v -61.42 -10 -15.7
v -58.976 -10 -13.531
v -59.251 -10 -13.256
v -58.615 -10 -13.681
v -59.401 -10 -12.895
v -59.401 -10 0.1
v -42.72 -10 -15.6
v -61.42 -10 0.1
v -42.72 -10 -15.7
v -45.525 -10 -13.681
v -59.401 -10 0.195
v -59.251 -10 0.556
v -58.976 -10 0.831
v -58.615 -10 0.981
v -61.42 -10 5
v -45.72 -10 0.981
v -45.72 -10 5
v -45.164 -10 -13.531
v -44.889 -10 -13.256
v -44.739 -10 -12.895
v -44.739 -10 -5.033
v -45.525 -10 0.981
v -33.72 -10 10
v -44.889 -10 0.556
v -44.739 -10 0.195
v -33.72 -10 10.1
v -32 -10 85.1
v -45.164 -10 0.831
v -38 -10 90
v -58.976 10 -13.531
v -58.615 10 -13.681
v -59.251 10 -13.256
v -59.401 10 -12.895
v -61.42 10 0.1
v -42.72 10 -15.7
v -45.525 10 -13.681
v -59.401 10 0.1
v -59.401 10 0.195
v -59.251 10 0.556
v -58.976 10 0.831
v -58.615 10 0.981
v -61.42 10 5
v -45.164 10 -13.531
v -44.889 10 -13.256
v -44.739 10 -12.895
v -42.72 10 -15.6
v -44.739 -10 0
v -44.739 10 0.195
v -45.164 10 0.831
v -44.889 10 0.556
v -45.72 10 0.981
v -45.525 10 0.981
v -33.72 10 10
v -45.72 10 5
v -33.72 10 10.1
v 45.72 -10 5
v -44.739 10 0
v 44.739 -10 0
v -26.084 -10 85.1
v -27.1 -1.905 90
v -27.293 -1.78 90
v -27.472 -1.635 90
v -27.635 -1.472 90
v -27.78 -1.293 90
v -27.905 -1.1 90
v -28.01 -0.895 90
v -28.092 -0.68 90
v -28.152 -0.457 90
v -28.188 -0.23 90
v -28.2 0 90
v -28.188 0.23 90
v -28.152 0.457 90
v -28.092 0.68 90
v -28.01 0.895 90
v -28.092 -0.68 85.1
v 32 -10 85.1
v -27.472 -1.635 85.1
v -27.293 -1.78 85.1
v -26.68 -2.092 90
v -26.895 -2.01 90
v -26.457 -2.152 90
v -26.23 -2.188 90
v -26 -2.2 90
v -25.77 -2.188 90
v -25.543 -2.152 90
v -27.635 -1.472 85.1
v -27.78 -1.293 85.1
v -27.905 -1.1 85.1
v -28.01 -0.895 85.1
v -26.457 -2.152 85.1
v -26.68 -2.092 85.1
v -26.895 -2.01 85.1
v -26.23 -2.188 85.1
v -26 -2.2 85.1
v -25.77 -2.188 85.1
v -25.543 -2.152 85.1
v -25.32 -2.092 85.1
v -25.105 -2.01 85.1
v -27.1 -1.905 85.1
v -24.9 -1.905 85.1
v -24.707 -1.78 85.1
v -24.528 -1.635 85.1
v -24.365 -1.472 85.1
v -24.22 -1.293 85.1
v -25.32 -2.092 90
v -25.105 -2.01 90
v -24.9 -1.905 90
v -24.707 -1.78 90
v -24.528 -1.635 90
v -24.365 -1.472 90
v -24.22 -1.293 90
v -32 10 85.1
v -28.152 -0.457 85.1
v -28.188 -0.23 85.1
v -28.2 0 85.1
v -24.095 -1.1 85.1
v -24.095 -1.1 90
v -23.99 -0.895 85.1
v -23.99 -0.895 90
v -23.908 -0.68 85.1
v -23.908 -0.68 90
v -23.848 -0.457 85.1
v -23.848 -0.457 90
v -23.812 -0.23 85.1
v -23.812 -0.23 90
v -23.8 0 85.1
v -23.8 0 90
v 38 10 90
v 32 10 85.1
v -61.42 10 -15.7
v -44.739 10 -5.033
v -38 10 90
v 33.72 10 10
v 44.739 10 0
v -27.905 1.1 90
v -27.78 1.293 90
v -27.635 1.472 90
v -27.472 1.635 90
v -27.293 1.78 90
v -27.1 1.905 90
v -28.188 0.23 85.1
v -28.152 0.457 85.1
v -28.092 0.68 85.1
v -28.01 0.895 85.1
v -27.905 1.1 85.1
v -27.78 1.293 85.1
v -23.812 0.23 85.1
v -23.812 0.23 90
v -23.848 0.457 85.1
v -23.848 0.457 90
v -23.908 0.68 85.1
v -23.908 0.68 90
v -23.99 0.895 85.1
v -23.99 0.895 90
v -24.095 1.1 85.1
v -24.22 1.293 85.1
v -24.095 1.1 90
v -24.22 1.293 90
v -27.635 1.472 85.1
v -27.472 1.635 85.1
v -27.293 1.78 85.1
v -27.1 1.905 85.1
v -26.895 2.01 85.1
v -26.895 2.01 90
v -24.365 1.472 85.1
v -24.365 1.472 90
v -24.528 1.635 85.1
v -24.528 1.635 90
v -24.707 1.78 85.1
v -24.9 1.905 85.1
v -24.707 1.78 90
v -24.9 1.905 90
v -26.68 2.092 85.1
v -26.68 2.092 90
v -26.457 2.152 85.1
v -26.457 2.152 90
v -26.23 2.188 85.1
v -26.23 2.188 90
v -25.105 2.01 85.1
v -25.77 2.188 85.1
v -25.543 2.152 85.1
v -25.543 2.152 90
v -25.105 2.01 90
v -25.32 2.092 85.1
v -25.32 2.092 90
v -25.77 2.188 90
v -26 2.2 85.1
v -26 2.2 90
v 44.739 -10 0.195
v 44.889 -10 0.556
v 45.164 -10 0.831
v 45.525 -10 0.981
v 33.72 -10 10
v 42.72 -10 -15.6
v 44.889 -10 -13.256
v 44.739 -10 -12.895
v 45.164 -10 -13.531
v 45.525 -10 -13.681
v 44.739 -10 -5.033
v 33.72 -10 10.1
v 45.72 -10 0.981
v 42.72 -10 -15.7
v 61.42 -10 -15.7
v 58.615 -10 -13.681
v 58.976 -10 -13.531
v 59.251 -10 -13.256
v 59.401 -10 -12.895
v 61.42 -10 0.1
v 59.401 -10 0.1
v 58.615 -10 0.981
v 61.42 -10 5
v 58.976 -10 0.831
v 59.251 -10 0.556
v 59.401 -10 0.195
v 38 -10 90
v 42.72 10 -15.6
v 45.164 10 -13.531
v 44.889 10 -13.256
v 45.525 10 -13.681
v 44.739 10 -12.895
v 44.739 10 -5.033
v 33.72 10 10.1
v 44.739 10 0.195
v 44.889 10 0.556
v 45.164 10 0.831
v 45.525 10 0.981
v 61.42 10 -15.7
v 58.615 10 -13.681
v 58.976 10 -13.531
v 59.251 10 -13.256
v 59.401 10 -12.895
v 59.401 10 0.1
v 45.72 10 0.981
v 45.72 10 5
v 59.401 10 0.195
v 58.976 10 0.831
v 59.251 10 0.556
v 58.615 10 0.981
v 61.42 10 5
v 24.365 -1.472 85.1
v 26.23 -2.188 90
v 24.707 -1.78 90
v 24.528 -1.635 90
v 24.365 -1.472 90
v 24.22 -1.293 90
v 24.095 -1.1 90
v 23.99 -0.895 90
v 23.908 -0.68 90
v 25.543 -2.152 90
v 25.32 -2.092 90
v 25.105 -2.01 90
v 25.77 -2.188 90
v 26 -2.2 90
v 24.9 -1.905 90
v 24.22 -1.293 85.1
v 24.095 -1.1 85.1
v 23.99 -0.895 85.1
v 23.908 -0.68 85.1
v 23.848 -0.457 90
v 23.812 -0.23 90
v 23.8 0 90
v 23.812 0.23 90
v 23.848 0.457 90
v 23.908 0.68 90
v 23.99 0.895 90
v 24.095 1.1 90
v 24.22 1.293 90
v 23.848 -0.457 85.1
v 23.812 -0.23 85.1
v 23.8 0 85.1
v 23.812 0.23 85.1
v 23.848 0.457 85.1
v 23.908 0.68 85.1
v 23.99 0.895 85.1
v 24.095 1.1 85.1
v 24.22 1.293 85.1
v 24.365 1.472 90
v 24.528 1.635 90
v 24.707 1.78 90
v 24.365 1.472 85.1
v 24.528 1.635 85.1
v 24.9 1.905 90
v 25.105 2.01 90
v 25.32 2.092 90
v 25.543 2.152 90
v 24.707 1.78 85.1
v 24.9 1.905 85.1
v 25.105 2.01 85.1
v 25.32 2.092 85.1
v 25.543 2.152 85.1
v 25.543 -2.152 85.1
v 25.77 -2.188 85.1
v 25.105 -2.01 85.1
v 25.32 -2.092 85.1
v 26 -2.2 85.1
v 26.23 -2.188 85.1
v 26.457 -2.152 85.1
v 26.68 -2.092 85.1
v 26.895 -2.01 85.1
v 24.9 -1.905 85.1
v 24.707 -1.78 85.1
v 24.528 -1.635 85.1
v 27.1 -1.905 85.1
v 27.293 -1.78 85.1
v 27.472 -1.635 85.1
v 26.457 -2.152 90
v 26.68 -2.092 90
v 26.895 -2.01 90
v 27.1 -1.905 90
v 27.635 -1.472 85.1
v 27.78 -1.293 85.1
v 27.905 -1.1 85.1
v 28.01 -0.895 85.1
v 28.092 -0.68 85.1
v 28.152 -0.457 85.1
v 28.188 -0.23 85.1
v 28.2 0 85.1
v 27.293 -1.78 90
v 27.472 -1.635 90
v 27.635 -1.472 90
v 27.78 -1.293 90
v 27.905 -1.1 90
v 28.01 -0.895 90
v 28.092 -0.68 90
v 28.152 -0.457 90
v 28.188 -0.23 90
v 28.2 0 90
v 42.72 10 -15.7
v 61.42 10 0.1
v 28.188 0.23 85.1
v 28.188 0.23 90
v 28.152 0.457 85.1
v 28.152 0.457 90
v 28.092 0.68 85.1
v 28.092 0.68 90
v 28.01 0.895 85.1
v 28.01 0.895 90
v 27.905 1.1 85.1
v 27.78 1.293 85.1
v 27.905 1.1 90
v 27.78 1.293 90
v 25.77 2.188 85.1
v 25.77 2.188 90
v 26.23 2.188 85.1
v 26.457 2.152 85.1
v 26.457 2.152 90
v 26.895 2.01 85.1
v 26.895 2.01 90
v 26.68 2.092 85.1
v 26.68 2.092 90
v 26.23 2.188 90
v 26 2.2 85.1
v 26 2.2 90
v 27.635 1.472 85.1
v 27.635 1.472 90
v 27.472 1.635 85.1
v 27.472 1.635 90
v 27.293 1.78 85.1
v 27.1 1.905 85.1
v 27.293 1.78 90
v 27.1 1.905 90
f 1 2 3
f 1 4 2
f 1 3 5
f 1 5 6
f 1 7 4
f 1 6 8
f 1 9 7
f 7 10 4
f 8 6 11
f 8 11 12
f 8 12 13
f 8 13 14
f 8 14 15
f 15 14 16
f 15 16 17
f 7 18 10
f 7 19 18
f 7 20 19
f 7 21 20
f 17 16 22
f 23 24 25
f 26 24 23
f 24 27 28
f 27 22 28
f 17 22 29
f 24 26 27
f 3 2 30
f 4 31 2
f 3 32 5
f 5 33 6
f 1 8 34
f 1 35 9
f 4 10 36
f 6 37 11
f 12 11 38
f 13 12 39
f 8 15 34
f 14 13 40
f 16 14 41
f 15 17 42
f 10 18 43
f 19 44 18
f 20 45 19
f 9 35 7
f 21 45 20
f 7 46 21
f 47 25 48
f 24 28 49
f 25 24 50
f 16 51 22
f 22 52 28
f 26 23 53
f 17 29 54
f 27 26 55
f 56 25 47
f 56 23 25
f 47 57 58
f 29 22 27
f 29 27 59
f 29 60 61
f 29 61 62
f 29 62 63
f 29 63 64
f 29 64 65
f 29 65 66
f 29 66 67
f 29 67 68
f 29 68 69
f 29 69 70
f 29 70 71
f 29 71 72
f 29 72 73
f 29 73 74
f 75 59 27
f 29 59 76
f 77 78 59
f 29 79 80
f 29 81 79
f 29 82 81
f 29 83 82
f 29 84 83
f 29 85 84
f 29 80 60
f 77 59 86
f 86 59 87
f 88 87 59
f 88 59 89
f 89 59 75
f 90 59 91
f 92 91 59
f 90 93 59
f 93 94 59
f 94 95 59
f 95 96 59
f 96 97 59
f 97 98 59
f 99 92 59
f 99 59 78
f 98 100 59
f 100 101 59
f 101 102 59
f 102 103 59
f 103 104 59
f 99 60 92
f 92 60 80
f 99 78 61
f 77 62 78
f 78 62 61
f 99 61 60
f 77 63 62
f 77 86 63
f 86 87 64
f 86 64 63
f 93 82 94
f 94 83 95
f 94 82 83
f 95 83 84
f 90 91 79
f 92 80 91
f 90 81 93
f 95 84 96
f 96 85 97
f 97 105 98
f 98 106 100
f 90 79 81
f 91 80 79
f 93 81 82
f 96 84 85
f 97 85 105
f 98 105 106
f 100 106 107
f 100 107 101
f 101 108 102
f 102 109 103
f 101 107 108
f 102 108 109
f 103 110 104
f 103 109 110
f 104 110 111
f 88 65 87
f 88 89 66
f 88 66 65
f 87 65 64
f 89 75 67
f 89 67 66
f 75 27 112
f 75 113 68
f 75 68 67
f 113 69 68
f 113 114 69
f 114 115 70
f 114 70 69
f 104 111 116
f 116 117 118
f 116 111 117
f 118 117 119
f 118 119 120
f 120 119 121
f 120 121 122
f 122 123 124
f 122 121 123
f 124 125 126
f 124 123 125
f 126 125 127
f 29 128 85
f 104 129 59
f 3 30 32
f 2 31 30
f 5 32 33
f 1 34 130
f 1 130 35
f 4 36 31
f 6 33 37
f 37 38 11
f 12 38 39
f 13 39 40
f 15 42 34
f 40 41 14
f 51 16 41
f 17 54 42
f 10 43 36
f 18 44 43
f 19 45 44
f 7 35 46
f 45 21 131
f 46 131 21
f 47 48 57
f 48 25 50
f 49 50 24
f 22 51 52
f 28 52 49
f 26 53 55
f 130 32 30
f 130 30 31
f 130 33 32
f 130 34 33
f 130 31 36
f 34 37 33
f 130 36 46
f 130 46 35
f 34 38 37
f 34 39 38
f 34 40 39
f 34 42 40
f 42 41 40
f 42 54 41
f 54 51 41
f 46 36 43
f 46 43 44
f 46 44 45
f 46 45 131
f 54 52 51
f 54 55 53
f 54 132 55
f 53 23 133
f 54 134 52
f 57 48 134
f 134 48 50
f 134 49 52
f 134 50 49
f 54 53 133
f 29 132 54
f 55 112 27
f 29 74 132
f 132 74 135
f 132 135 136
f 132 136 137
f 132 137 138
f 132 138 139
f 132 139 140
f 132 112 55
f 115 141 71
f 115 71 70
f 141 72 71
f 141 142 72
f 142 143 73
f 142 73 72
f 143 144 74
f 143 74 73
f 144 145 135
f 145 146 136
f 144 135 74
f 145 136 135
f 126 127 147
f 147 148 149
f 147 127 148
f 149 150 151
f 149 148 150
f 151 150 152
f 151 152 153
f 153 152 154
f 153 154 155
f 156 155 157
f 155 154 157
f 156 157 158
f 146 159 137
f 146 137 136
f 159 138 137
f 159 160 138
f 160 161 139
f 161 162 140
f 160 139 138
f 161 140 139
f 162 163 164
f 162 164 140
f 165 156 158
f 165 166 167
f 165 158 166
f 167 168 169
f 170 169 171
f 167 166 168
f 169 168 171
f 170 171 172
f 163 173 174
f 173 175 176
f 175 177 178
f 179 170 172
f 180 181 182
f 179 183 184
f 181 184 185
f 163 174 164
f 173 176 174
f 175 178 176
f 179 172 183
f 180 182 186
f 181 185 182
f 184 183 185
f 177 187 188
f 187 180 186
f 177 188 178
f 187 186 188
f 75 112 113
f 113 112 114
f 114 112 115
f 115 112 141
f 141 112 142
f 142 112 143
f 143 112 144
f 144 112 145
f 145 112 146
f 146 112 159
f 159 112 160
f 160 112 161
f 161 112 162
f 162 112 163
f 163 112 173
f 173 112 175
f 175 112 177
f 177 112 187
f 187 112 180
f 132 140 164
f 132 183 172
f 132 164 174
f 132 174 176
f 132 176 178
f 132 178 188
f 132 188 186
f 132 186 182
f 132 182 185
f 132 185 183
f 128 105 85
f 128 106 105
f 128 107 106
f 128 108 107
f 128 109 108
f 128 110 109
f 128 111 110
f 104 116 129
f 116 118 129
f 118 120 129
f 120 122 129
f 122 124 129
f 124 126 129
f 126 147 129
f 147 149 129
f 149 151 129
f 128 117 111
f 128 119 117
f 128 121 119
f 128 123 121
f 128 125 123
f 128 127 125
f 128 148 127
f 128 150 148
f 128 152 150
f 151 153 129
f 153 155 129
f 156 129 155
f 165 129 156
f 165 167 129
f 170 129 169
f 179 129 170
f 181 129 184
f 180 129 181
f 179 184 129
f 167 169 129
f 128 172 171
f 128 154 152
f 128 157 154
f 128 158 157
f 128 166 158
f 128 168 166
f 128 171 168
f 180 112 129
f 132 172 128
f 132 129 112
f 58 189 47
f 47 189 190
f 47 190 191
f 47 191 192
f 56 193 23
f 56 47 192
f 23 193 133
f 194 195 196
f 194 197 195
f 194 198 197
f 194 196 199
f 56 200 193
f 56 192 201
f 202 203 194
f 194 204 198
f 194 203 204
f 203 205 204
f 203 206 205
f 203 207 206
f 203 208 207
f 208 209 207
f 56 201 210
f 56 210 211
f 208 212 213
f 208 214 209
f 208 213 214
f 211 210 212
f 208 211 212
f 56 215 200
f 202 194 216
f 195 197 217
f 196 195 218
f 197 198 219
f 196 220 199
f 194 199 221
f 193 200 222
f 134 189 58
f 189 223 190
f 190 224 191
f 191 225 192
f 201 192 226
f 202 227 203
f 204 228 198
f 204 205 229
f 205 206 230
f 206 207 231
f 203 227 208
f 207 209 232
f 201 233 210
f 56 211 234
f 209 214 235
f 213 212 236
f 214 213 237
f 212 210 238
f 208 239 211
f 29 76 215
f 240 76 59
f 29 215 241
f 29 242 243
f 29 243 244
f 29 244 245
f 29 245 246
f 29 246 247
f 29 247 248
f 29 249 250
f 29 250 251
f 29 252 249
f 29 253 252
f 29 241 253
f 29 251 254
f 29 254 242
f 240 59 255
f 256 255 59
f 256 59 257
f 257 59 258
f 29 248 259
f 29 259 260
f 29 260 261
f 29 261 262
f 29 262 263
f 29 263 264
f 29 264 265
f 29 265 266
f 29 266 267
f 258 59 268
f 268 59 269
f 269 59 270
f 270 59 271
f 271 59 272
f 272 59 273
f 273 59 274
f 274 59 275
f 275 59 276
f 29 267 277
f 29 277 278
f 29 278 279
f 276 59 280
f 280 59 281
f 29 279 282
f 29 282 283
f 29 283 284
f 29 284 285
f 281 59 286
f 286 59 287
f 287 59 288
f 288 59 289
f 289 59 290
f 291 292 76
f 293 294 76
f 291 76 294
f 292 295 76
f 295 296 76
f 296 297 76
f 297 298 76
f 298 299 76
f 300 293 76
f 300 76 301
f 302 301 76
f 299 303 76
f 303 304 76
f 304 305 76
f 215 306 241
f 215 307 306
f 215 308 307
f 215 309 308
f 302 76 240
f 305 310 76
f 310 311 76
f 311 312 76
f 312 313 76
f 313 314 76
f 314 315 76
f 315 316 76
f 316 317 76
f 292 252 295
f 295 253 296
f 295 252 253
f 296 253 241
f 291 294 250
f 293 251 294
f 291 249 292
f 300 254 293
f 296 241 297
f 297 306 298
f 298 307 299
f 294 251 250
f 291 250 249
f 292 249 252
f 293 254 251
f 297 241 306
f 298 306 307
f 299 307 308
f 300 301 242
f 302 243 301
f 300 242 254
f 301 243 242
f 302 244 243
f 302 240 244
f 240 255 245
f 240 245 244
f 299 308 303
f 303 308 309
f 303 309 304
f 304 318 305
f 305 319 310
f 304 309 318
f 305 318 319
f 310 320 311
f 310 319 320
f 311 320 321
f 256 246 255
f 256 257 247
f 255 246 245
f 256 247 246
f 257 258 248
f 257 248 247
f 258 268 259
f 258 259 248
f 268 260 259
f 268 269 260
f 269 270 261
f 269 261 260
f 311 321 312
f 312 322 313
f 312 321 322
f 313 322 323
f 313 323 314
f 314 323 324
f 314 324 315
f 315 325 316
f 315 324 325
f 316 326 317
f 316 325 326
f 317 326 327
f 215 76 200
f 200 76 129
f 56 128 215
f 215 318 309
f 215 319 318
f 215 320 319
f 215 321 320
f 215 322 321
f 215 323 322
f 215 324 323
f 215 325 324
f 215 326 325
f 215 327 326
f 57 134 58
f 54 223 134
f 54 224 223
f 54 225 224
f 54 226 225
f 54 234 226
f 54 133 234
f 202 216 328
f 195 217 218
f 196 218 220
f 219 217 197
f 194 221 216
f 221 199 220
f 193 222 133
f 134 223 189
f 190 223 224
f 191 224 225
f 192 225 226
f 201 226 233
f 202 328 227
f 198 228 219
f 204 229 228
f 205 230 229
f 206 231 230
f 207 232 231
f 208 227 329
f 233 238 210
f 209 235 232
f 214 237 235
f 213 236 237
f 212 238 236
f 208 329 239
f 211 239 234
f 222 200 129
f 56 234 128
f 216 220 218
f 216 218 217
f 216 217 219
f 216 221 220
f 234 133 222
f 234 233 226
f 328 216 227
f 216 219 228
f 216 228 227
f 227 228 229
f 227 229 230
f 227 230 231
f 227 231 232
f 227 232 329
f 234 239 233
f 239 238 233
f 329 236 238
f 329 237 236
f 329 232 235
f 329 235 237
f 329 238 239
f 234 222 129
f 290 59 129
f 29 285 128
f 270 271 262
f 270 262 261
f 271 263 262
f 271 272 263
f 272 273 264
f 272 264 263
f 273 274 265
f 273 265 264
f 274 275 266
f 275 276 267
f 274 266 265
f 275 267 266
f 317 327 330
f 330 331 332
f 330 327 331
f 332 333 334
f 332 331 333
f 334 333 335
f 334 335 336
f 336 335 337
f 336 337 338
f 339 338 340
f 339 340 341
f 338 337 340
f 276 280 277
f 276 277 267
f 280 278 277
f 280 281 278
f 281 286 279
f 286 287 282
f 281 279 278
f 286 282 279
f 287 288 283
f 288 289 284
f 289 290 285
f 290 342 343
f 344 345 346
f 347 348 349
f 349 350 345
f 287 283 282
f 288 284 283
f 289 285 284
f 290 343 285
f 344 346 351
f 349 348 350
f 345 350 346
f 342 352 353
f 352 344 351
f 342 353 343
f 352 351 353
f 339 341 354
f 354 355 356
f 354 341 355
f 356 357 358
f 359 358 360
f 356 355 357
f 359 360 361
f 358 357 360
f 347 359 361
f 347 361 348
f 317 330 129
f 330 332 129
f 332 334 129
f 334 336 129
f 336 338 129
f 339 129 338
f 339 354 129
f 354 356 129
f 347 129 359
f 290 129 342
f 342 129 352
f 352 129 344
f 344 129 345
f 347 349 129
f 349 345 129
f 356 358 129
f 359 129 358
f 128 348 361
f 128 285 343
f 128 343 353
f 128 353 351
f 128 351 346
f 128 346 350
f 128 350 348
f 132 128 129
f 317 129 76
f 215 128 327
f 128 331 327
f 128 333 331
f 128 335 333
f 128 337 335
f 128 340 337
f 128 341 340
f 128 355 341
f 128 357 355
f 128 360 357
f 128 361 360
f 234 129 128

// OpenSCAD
// --- Parametric Mount Bracket ---
// Based on user sketch specifications

// --- Dimensions (Change these if needed) ---
inch = 25.4; // Conversion factor

// Post Dimensions
post_size = 0.5 * inch; // 1/2 inch square posts
post_gap_inches = 3.6; // 3.6 inches between posts
post_gap = post_gap_inches * inch;

// Mount Dimensions
mount_thickness = 5; // Vertical thickness of main top bar
mount_depth = 20; // How wide the bracket is (Y-axis length)
lip_width = 3; // ~3mm overhang for the clamp hook
wall_thickness = 3; // 3mm outer wall thickness

// Camera Mount Dimensions
extension_height = 85; // Extended +Z 85mm for the camera holes

// Bolt Dimensions
bolt_spacing = 52; // 52mm spacing for the camera mount
bolt_diameter = 4.4; // M4 screw (4mm + 0.4mm clearance)

// Tolerance / Clearance
clearance = 1.0;

// Set resolution (keep sphere fn moderate for fast minkowski)
$fn = 60;

// --- Calculations ---
total_width = post_gap + (2 * post_size) + (2 * wall_thickness);
post_start_x = post_gap / 2;

module rails() {
  // Left Rail
  translate([-post_start_x - post_size, -mount_depth, -post_size])
    cube([post_size, mount_depth * 3, post_size]);

  // Right Rail
  translate([post_start_x, -mount_depth, -post_size])
    cube([post_size, mount_depth * 3, post_size]);
}

module mount() {
  difference() {
    // --- 1. Solid Bodies ---
    union() {
      // Top Bar / Bridge
      translate([-total_width / 2, -mount_depth / 2, 0])
        cube([total_width, mount_depth, mount_thickness]);

      // Left Leg Solid (Tapers inwards at bottom for upside-down 3D printing without supports)
      hull() {
        translate([-total_width / 2, -mount_depth / 2, 0])
          cube([wall_thickness + post_size, mount_depth, 0.1]);

        translate([-total_width / 2, -mount_depth / 2, -post_size])
          cube([wall_thickness + post_size, mount_depth, 0.1]);

        translate([-total_width / 2, -mount_depth / 2, -post_size - wall_thickness])
          cube([wall_thickness + post_size + lip_width, mount_depth, 0.1]);
      }

      // Right Leg Solid (Tapers inwards at bottom for upside-down 3D printing)
      hull() {
        translate([post_start_x, -mount_depth / 2, 0])
          cube([post_size + wall_thickness, mount_depth, 0.1]);

        translate([post_start_x, -mount_depth / 2, -post_size])
          cube([post_size + wall_thickness, mount_depth, 0.1]);

        translate([post_start_x - lip_width, -mount_depth / 2, -post_size - wall_thickness])
          cube([lip_width + post_size + wall_thickness, mount_depth, 0.1]);
      }

      // The +Z 85mm Extension Tower (A-frame arch)
      hull() {
        // Base of the tower covering the center span
        translate([-post_start_x, -mount_depth / 2, 0])
          cube([post_gap, mount_depth, mount_thickness]);

        // Top Mount plate for camera holes (+Z 85mm)
        translate([-(bolt_spacing + 24) / 2, -mount_depth / 2, extension_height])
          cube([bolt_spacing + 24, mount_depth, mount_thickness]);
      }
    }

    // --- 2. Minkowski Rail Cutout (Deletes rail shape + clearance from the solid body) ---
    minkowski() {
      rails();
      // A sphere provides beautifully rounded inner corners and exact omnidirectional clearance
      sphere(r=clearance, $fn=16);
    }

    // --- 3. Bolt Holes Subtraction ---
    // Left camera hole at the top
    translate([-bolt_spacing / 2, 0, extension_height - 5])
      cylinder(h=mount_thickness + 15, d=bolt_diameter);

    // Right camera hole at the top
    translate([bolt_spacing / 2, 0, extension_height - 5])
      cylinder(h=mount_thickness + 15, d=bolt_diameter);

    // --- 4. Arch Cutout (Saves material, allows nut access underneath) ---
    hull() {
      // Bottom of the arch
      translate([-(post_start_x - 12), -mount_depth / 2 - 1, mount_thickness + 5])
        cube([(post_start_x - 12) * 2, mount_depth + 2, 0.1]);

      // Top of the arch
      translate([-(bolt_spacing / 2 + 6), -mount_depth / 2 - 1, extension_height])
        cube([(bolt_spacing / 2 + 6) * 2, mount_depth + 2, 0.1]);
    }
  }
}

// --- Render the Part ---
color("lightgrey") mount();

// --- Visual Ghost of the Posts (For debugging/Checking fit) ---
%union() {
  color("orange") rails();

  // Distance Marker (Visual aid for checking bolt spacing)
  // Preserved and moved +85mm up as requested
  translate([-bolt_spacing / 2, 0, extension_height + mount_thickness + 2])
    color("red") cylinder(h=2, d=2);
  translate([bolt_spacing / 2, 0, extension_height + mount_thickness + 2])
    color("red") cylinder(h=2, d=2);
}
